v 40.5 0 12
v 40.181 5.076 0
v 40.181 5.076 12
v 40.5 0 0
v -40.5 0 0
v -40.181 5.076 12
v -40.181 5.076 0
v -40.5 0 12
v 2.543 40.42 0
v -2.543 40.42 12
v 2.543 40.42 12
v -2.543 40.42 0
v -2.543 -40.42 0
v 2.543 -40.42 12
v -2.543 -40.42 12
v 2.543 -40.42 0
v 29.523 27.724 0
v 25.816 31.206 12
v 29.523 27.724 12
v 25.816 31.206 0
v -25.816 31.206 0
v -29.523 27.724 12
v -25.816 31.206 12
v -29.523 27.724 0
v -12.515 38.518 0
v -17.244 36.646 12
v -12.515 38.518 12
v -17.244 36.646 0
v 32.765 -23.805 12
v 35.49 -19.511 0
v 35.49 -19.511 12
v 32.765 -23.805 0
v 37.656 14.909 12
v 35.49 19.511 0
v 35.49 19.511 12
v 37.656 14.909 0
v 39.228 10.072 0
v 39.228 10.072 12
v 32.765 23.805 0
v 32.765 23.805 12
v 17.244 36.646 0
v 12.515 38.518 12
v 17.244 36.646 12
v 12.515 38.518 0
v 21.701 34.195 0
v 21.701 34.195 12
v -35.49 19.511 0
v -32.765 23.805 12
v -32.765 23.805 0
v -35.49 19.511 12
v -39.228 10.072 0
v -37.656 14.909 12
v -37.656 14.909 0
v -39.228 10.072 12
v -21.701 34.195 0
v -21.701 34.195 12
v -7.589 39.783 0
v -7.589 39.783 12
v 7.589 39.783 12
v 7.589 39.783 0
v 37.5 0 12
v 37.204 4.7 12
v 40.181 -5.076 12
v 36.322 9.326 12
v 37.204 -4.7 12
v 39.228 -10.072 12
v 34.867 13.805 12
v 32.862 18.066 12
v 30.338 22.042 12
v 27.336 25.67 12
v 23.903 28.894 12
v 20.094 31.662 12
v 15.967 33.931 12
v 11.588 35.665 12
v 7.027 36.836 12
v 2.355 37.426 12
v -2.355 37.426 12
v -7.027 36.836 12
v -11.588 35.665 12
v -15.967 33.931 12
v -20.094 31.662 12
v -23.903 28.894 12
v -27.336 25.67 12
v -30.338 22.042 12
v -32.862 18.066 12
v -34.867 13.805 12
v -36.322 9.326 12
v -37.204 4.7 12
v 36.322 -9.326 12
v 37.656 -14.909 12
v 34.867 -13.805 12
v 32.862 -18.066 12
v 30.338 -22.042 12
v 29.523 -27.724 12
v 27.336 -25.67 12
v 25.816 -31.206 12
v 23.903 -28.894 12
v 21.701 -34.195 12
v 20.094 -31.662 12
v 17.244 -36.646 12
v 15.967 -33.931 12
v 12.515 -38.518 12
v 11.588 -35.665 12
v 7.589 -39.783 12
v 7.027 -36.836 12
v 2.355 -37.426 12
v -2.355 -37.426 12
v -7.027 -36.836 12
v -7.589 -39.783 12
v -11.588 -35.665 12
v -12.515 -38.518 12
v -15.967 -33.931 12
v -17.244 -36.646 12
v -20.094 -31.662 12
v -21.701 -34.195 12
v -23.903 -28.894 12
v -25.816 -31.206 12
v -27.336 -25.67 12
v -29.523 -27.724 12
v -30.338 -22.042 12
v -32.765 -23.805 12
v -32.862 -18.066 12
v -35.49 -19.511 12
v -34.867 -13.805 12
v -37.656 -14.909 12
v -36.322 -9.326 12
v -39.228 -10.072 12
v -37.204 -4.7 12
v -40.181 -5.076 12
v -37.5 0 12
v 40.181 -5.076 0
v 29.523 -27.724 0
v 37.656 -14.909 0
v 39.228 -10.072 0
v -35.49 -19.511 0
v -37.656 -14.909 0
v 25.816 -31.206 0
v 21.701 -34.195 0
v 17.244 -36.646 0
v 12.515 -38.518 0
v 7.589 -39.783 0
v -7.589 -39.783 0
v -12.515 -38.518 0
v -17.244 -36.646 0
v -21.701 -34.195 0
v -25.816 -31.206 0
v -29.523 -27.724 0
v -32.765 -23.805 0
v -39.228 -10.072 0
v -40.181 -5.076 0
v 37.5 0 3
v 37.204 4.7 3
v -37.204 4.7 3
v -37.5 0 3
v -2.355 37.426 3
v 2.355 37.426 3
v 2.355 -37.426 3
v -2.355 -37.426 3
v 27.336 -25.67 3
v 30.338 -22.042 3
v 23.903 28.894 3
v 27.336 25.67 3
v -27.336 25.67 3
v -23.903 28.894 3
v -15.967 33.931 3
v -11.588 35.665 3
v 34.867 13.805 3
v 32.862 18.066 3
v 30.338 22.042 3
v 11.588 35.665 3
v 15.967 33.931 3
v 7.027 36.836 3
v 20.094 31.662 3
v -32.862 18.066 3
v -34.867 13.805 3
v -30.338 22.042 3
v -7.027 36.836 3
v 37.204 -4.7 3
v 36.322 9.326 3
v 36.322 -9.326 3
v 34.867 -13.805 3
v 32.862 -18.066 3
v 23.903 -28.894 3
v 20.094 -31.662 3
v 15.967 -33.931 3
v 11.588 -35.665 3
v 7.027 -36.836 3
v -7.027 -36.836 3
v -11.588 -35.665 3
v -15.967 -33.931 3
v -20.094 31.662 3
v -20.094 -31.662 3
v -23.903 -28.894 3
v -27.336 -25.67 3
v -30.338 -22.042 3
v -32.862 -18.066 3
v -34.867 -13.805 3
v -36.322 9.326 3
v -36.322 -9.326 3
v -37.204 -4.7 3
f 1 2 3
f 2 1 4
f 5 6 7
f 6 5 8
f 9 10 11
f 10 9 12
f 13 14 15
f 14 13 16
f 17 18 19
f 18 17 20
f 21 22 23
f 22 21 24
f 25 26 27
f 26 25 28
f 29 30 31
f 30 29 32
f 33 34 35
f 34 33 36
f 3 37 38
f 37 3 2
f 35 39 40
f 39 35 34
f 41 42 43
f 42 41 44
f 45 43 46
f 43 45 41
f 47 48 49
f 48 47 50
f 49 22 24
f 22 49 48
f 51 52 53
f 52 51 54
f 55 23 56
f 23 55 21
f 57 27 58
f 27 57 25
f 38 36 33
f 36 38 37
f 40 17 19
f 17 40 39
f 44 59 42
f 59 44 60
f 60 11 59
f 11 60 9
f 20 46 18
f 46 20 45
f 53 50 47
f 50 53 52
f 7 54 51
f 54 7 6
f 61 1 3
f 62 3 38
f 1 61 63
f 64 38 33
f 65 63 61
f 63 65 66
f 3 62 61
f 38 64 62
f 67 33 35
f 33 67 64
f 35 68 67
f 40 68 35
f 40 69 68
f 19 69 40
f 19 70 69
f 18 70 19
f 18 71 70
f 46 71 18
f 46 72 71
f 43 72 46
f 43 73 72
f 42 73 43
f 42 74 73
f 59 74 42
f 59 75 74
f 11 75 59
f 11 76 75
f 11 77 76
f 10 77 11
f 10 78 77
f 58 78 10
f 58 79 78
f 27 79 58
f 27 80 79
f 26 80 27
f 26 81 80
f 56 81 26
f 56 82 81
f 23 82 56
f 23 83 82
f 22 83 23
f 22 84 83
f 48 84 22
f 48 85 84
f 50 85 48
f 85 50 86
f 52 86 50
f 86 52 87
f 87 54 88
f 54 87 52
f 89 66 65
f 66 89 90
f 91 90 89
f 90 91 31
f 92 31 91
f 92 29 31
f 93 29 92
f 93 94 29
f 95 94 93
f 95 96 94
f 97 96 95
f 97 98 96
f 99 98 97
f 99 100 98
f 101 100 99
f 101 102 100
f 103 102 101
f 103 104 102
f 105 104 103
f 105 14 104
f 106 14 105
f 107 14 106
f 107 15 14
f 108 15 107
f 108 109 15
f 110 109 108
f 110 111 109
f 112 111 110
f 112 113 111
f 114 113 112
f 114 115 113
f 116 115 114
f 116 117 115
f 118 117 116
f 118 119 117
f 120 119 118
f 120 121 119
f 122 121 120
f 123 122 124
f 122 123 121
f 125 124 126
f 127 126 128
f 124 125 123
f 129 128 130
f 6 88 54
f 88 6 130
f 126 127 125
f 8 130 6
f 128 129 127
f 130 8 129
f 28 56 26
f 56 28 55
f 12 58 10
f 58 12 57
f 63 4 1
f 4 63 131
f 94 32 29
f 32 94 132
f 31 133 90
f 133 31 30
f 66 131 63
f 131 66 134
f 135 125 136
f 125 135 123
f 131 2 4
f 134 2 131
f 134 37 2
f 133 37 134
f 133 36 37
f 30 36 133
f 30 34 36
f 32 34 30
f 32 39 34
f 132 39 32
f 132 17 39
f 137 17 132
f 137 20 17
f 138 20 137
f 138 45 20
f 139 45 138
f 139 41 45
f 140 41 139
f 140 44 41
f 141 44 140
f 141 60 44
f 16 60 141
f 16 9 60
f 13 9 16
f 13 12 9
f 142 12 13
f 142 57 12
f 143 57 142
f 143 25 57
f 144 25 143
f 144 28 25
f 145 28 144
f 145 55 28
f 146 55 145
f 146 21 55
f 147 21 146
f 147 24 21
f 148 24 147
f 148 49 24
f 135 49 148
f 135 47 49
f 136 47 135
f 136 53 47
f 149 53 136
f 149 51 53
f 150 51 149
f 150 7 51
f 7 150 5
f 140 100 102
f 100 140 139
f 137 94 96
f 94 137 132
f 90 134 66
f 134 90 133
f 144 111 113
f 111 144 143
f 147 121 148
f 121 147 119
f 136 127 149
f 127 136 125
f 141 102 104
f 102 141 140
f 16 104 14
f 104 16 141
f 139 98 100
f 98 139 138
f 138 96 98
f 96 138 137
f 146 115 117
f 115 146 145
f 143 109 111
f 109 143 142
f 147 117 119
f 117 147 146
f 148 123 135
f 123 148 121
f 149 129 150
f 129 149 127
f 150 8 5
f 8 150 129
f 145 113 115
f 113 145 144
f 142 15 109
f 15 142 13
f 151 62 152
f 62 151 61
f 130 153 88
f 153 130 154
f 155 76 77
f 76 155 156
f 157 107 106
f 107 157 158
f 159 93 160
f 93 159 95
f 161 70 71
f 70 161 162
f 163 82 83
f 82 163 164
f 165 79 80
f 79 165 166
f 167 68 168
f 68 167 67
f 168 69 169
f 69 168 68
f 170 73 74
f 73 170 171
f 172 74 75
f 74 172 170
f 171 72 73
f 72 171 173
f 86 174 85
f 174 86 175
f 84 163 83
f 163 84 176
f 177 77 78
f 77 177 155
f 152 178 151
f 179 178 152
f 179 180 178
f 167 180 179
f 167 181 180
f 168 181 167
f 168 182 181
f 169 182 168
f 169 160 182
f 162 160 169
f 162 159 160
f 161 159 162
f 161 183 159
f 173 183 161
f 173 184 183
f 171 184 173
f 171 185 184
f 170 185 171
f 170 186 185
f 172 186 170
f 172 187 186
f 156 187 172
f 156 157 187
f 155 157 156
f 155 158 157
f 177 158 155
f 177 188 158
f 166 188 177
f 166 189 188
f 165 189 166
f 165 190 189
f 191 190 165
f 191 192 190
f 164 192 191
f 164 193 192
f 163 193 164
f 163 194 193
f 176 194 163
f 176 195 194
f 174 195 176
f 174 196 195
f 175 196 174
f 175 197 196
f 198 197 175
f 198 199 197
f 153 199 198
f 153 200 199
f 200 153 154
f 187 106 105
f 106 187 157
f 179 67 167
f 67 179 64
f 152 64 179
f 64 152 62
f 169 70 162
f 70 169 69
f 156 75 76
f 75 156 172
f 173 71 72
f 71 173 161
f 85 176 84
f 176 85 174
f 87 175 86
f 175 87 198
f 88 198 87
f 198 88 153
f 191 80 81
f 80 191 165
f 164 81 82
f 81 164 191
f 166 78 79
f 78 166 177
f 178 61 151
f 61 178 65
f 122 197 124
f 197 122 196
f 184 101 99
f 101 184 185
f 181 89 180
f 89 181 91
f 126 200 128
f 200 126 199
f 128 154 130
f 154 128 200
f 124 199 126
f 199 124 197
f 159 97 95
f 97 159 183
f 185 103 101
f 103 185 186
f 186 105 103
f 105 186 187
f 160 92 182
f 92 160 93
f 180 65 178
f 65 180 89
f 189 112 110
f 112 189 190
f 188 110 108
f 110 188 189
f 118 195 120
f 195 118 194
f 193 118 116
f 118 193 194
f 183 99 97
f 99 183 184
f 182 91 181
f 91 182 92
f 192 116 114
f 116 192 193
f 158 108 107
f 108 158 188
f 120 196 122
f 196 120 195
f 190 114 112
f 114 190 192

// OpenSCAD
echo(version=version());

$wall_thickness = 3;
$fn = 50;

height = 12;
inner_diameter = 75;
outer_diameter = inner_diameter + $wall_thickness * 2;

difference() {
  cylinder(height, outer_diameter/2, outer_diameter/2);
  translate([0, 0, $wall_thickness]) {
    cylinder(height, inner_diameter/2, inner_diameter/2);
  }
}
